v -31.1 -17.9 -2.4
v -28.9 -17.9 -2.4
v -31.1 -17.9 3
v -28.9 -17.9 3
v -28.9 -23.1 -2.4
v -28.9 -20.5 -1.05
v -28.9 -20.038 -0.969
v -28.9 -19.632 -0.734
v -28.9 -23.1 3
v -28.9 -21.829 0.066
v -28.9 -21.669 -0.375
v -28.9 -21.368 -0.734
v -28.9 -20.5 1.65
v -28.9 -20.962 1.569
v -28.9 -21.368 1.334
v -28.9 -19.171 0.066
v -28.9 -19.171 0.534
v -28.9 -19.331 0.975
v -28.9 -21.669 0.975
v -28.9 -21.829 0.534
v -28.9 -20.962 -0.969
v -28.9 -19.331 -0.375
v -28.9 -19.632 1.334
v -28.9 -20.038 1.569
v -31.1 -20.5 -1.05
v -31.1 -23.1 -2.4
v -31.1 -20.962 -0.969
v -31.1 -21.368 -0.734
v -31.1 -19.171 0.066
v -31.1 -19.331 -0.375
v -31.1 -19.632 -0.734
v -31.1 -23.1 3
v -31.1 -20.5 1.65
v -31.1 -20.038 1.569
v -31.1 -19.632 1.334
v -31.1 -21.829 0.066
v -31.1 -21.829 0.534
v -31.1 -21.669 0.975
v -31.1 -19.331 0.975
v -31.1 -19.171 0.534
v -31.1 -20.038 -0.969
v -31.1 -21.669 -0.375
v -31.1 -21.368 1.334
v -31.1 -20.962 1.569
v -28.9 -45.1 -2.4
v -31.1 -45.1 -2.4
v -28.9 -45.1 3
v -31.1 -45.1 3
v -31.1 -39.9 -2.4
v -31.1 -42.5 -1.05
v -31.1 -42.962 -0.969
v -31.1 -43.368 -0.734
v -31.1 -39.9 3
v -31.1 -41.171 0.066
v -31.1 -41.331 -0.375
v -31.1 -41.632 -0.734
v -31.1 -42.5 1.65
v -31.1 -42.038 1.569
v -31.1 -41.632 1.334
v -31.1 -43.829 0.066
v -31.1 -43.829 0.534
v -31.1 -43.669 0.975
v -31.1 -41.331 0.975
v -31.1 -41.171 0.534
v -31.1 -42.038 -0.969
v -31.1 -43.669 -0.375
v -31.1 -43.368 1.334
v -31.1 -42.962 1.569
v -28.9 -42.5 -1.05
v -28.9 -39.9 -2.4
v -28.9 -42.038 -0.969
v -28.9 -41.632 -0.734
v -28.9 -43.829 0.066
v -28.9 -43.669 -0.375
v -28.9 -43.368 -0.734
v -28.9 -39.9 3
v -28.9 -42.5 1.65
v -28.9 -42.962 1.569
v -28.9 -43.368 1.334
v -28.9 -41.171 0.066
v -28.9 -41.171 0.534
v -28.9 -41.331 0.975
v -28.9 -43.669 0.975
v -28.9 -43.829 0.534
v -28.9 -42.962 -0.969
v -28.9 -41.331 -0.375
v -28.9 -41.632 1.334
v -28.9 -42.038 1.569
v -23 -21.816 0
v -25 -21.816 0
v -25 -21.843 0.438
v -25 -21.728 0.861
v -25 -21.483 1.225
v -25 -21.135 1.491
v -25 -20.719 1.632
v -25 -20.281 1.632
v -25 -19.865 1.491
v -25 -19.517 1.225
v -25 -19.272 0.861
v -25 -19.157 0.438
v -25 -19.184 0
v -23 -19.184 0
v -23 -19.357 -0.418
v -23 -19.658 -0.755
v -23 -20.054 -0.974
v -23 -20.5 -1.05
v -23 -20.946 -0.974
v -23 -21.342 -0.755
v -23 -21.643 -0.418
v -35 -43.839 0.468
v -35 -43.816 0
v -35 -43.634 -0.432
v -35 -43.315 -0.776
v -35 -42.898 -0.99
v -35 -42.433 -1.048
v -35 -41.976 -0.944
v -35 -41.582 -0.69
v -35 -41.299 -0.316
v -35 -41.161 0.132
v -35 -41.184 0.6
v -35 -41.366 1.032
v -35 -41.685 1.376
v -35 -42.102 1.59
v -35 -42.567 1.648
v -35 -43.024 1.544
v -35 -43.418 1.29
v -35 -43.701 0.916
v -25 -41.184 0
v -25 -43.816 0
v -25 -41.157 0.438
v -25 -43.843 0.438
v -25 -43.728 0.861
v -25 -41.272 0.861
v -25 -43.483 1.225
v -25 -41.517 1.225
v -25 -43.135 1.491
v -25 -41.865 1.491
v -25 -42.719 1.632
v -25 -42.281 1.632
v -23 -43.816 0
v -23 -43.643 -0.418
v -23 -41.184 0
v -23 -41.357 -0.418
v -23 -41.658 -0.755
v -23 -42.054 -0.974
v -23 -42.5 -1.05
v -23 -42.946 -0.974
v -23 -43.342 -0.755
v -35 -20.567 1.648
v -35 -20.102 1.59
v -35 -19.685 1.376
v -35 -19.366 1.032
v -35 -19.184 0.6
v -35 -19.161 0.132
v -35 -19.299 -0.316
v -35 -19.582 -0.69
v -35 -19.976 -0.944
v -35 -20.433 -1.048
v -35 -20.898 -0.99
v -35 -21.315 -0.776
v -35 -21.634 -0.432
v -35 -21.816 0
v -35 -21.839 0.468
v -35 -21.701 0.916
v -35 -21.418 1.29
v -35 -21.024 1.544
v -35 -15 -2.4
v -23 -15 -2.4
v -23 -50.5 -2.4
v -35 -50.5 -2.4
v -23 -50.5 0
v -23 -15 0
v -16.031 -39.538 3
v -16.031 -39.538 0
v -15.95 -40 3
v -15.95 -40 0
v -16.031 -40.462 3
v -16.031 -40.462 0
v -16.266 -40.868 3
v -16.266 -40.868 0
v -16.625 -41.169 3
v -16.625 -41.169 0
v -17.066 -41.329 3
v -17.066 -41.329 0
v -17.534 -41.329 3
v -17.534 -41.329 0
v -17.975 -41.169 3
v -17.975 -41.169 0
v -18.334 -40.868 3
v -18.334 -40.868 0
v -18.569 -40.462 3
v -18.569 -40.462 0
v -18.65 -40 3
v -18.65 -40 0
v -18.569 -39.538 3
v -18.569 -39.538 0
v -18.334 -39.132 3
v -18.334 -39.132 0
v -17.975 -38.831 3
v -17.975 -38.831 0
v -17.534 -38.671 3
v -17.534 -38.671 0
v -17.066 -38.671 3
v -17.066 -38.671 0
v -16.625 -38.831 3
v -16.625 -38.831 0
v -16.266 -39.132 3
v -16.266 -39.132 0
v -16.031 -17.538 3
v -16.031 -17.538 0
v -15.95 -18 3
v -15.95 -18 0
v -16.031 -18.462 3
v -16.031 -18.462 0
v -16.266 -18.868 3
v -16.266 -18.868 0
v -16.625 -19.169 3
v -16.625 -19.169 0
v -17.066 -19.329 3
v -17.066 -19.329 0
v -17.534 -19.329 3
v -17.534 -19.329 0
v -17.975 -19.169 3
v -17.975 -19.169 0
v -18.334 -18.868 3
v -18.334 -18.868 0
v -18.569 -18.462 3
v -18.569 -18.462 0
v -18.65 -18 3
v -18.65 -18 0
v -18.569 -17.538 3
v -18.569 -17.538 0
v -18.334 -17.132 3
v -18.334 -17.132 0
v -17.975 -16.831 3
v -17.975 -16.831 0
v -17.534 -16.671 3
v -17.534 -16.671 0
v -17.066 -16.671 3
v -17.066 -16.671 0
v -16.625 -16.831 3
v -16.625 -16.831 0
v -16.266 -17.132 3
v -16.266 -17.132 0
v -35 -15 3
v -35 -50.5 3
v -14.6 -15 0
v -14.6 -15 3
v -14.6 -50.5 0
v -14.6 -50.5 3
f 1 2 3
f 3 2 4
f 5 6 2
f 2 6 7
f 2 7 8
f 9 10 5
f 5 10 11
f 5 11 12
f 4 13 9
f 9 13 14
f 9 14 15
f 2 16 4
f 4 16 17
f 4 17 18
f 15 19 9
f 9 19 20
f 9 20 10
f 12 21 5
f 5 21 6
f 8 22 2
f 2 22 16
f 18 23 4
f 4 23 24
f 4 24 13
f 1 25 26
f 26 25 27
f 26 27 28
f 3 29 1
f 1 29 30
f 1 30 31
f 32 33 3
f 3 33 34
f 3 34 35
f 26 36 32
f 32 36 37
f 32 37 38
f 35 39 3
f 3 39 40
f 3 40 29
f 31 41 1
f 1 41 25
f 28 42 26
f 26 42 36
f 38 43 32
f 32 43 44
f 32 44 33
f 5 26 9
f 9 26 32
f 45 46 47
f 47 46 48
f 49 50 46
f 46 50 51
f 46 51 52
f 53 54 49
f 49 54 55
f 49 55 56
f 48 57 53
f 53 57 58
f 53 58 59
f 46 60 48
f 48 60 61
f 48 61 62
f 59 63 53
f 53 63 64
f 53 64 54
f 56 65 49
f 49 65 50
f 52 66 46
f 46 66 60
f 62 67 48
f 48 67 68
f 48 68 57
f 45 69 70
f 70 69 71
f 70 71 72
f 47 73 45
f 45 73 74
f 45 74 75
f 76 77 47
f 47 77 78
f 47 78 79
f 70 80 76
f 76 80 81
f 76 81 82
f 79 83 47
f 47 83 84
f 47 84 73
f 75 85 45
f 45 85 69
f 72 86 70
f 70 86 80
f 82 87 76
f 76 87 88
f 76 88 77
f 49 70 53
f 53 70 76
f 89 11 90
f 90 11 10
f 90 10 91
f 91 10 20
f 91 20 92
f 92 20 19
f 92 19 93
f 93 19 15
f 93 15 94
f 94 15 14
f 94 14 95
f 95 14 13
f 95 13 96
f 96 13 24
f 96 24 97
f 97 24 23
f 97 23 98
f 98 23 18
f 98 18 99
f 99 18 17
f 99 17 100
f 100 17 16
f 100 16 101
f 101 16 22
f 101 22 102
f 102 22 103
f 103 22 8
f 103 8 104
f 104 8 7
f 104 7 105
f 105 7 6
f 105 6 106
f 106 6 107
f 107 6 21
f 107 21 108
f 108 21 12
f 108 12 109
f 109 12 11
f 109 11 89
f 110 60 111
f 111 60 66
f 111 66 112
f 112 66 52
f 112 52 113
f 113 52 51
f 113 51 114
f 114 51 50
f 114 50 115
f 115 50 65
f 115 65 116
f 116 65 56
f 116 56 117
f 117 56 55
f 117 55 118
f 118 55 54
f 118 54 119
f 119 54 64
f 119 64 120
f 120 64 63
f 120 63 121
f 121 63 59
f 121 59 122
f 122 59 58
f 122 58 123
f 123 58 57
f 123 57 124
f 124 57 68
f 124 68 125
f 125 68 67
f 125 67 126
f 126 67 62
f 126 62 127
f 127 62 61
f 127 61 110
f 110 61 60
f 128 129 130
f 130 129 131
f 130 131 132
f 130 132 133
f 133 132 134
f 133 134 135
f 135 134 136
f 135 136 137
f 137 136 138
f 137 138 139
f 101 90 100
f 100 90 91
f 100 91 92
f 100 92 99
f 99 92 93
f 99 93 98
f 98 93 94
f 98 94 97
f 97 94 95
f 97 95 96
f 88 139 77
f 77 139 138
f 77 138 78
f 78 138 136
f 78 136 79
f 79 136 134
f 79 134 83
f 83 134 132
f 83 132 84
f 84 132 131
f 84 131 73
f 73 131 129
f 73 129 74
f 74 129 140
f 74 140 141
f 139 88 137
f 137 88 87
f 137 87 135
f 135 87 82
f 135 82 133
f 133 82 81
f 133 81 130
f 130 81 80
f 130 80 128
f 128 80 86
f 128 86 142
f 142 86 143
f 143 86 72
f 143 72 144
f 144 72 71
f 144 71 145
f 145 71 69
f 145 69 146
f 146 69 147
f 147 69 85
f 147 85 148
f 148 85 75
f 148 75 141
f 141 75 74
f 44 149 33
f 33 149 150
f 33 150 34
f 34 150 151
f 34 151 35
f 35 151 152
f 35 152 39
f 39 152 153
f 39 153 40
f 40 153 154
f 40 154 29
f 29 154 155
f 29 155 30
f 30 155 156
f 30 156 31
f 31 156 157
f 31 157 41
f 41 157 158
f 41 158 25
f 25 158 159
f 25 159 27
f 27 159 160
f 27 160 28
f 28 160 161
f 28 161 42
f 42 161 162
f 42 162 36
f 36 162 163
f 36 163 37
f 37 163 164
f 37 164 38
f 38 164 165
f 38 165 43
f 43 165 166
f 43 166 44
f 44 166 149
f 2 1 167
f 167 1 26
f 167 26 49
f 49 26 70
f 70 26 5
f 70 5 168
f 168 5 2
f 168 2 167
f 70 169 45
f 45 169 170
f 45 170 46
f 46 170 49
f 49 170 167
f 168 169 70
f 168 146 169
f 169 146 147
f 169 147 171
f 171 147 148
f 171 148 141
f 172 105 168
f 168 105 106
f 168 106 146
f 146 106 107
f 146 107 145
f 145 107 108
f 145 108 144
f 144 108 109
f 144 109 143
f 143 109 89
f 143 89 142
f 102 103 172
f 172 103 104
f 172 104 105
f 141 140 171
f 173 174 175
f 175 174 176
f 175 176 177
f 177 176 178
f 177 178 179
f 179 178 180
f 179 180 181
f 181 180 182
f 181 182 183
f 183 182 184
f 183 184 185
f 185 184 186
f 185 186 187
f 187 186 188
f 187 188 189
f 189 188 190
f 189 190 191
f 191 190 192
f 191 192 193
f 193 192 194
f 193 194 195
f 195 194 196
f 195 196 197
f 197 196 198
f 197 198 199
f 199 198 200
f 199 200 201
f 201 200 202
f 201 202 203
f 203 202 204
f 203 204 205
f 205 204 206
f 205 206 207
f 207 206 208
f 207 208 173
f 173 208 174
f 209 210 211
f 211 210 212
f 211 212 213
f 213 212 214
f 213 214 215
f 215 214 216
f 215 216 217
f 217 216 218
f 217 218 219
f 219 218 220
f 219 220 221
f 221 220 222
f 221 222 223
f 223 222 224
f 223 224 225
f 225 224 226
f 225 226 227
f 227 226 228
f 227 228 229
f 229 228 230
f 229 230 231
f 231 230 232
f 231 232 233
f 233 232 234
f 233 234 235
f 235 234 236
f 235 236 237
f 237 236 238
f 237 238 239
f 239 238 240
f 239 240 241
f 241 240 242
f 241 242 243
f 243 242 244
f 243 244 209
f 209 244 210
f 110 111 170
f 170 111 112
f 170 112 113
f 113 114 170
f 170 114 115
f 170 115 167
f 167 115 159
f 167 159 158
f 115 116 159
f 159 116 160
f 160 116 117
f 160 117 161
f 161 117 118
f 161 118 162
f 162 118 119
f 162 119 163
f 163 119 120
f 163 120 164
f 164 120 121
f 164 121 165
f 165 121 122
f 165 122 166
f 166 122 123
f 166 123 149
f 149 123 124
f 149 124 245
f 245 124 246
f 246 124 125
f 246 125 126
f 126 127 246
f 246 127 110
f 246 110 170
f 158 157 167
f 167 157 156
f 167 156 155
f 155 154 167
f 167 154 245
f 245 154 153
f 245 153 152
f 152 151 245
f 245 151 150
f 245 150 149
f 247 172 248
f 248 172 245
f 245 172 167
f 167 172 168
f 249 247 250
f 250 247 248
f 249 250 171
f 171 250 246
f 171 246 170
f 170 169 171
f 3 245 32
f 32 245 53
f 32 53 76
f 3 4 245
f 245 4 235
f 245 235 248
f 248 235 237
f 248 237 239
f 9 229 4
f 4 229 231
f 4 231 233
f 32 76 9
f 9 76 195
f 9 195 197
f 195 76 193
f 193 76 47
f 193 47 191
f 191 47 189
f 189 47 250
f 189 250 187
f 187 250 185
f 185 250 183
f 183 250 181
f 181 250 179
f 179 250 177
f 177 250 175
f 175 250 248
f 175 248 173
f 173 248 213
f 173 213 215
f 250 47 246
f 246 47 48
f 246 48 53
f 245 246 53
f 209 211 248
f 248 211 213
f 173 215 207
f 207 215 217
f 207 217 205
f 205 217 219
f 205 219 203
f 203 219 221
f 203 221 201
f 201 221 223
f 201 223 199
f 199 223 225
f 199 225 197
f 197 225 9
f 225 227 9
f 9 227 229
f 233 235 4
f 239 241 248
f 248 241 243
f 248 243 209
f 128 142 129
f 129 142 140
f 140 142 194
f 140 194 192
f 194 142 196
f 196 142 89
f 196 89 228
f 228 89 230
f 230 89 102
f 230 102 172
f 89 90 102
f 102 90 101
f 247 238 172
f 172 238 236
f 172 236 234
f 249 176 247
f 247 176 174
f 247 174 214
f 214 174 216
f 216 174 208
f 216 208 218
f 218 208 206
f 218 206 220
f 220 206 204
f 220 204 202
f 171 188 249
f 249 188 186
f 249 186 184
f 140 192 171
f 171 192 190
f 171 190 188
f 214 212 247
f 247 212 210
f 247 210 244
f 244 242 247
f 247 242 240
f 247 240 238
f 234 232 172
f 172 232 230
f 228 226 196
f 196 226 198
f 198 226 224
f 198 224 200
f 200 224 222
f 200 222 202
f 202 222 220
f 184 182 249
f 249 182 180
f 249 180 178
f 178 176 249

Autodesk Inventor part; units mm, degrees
ref_plane "YZ Plane" through (0, 0, 0) normal (1, 0, 0) x (0, 1, 0)
ref_plane "XZ Plane" through (0, 0, 0) normal (0, 1, 0) x (-1, 0, 0)
ref_plane "XY Plane" through (0, 0, 0) normal (0, 0, 1) x (1, 0, 0)
ref_plane "작업 평면1" through (0, 0, 0) normal (0, 0, 1) x (1, 0, 0)
sketch "스케치2" plane through (0, 0, 0) normal (0, 0, 1) x (1, 0, 0)
  line L0 (13.5, -39.75) -> (11.5, -39.75) projected
  arc A0 (11.5, -39.75) -> (9.25, -42) centre (11.5, -42) ccw projected
  line L1 (9.25, -42) -> (9.25, -44) projected
  arc A1 (8.25, -45) -> (9.25, -44) centre (8.25, -44) ccw projected
  line L2 (8.25, -45) -> (-8.25, -45) projected
  arc A2 (-9.25, -44) -> (-8.25, -45) centre (-8.25, -44) ccw projected
  line L3 (-9.25, -44) -> (-9.25, -42) projected
  arc A3 (-9.25, -42) -> (-11.5, -39.75) centre (-11.5, -42) ccw projected
  line L4 (-11.5, -39.75) -> (-13.5, -39.75) projected
  arc A4 (-14.5, -38.75) -> (-13.5, -39.75) centre (-13.5, -38.75) ccw projected
  line L5 (-14.5, -38.75) -> (-14.5, 8.25) projected
  arc A5 (-13.5, 9.25) -> (-14.5, 8.25) centre (-13.5, 8.25) ccw projected
  line L6 (-13.5, 9.25) -> (-11.5, 9.25) projected
  arc A6 (-11.5, 9.25) -> (-9.25, 11.5) centre (-11.5, 11.5) ccw projected
  line L7 (-9.25, 11.5) -> (-9.25, 14.5) projected
  line L8 (-15, 14.5) -> (-9.25, 14.5) projected
  line L9 (-20.1, 8.5) -> (-15, 14.5) projected
  line L10 (-20.1, -44.6) -> (-20.1, 8.5) projected
  line L11 (-15, -50.6) -> (-20.1, -44.6) projected
  line L12 (15, -50.6) -> (-15, -50.6) projected
  line L13 (20.1, -44.6) -> (15, -50.6) projected
  line L14 (20.1, 8.5) -> (20.1, -44.6) projected
  line L15 (15, 14.5) -> (20.1, 8.5) projected
  line L16 (9.25, 14.5) -> (15, 14.5) projected
  line L17 (9.25, 14.5) -> (9.25, 11.5) projected
  arc A7 (9.25, 11.5) -> (11.5, 9.25) centre (11.5, 11.5) ccw projected
  line L18 (11.5, 9.25) -> (13.5, 9.25) projected
  arc A8 (14.5, 8.25) -> (13.5, 9.25) centre (13.5, 8.25) ccw projected
  line L19 (14.5, 8.25) -> (14.5, -38.75) projected
  arc A9 (13.5, -39.75) -> (14.5, -38.75) centre (13.5, -38.75) ccw projected
  circle A10 centre (17.3, 4) radius 1.35 projected
  circle A11 centre (17.3, -18) radius 1.35 projected
  circle A12 centre (11, -47.8) radius 1.35 projected
  circle A13 centre (-17.3, 4) radius 1.35 projected
  circle A14 centre (-17.3, -18) radius 1.35 projected
  circle A15 centre (-11, -47.8) radius 1.35 projected
  circle A16 centre (17.3, -40) radius 1.35 projected
  circle A17 centre (-17.3, -40) radius 1.35 projected
  line L20 (-43, 2.0766) -> (-43, -42.1766) projected
  line L21 (-14.6, 8.25) -> (-14.6, -38.75)
  arc A18 (-14.6, -38.75) -> (-13.5, -39.85) centre (-13.5, -38.75) ccw
  line L22 (-13.5, -39.85) -> (-11.5, -39.85)
  arc A19 (-9.35, -42) -> (-11.5, -39.85) centre (-11.5, -42) ccw
  line L23 (-9.35, -42) -> (-9.35, -44)
  arc A20 (-9.35, -44) -> (-8.25, -45.1) centre (-8.25, -44) ccw
  line L24 (-8.25, -45.1) -> (8.25, -45.1)
  arc A21 (8.25, -45.1) -> (9.35, -44) centre (8.25, -44) ccw
  line L25 (9.35, -44) -> (9.35, -42)
  arc A22 (11.5, -39.85) -> (9.35, -42) centre (11.5, -42) ccw
  line L26 (11.5, -39.85) -> (13.5, -39.85)
  arc A23 (13.5, -39.85) -> (14.6, -38.75) centre (13.5, -38.75) ccw
  line L27 (14.6, -38.75) -> (14.6, 8.25)
  arc A24 (14.6, 8.25) -> (13.5, 9.35) centre (13.5, 8.25) ccw
  line L28 (13.5, 9.35) -> (11.5, 9.35)
  arc A25 (9.35, 11.5) -> (11.5, 9.35) centre (11.5, 11.5) ccw
  line L29 (9.35, 11.5) -> (9.35, 14.4)
  line L30 (9.35, 14.4) -> (14.9538, 14.4)
  line L31 (14.9538, 14.4) -> (20, 8.4632)
  line L32 (20, 8.4632) -> (20, -44.5632)
  line L33 (20, -44.5632) -> (14.9538, -50.5)
  line L34 (14.9538, -50.5) -> (-14.9538, -50.5)
  line L35 (-20, -15) -> (-20, 8.4632)
  line L36 (-20, 8.4632) -> (-14.9538, 14.4)
  line L37 (-14.9538, 14.4) -> (-9.35, 14.4)
  line L38 (-9.35, 14.4) -> (-9.35, 11.5)
  arc A26 (-11.5, 9.35) -> (-9.35, 11.5) centre (-11.5, 11.5) ccw
  line L39 (-11.5, 9.35) -> (-13.5, 9.35)
  arc A27 (-13.5, 9.35) -> (-14.6, 8.25) centre (-13.5, 8.25) ccw
  line L40 (-20, -15) -> (-14.6, -15)
  line L41 (-14.6, -15) -> (-14.6, -45)
  line L42 (-43, -15) -> (-20, -15)
  line L43 (-35, -45) -> (-35, -50.5)
  line L44 (-35, -50.5) -> (-14.6, -50.5)
  line L45 (-14.6, -50.5) -> (-14.6, -45)
  line L46 (-35, -45) -> (-35, -15)
  point P0 (0, 0)
  point P1 (-14.6, -38.75)
  point P2 (-14.6, -50.5)
  point P3 (-14.6, -38.75)
  dimension "d1" = 0.1
  dimension "d27" = 20.4
extrude "돌출8" add sketch "스케치2" along normal blind 3 contours L44 L43 L46 L42 L10 L11 | L11 L10 L42 L40 L21 L41 L45 L34 L44
sketch "스케치10" plane through (-35, -50.5, 0) normal (-1, 0, 0) x (0, 0, 1)
  arc A0 (-36.5808, 54.2636) -> (-37.1, 52.5766) centre (-34.1, 52.5766) ccw projected
  line L0 (-37.1, 8.3234) -> (-37.1, 52.5766) projected
  arc A1 (-37.1, 8.3234) -> (-36.5808, 6.6364) centre (-34.1, 8.3234) ccw projected
  line L1 (-32.8929, 1.2131) -> (-36.5808, 6.6364) projected
  arc A2 (-32.8929, 1.2131) -> (-30.4121, -0.1) centre (-30.4121, 2.9) ccw projected
  line L2 (-3.5879, -0.1) -> (-30.4121, -0.1) projected
  arc A3 (-3.5879, -0.1) -> (-1.1071, 1.2131) centre (-3.5879, 2.9) ccw projected
  line L3 (2.5808, 6.6364) -> (-1.1071, 1.2131) projected
  arc A4 (2.5808, 6.6364) -> (3.1, 8.3234) centre (0.1, 8.3234) ccw projected
  line L4 (3.1, 52.5766) -> (3.1, 8.3234) projected
  arc A5 (3.1, 52.5766) -> (2.5808, 54.2636) centre (0.1, 52.5766) ccw projected
  line L5 (-1.4047, 60.1246) -> (2.5808, 54.2636) projected
  arc A6 (-1.4047, 60.1246) -> (-3.0586, 61) centre (-3.0586, 59) ccw projected
  line L6 (-9.35, 61) -> (-3.0586, 61) projected
  arc A7 (-7.85, 59.5) -> (-9.35, 61) centre (-9.35, 59.5) ccw projected
  line L7 (-7.85, 59.5) -> (-7.85, 58) projected
  arc A8 (-7.85, 58) -> (-5.5, 55.65) centre (-5.5, 58) ccw projected
  line L8 (-5.5, 55.65) -> (-3.5, 55.65) projected
  arc A9 (-2.5, 54.65) -> (-3.5, 55.65) centre (-3.5, 54.65) ccw projected
  line L9 (-2.5, 54.65) -> (-2.5, 11.85) projected
  arc A10 (-3.5, 10.85) -> (-2.5, 11.85) centre (-3.5, 11.85) ccw projected
  line L10 (-3.5, 10.85) -> (-5.5, 10.85) projected
  arc A11 (-5.5, 10.85) -> (-7.85, 8.5) centre (-5.5, 8.5) ccw projected
  line L11 (-7.85, 8.5) -> (-7.85, 6.5) projected
  arc A12 (-8.85, 5.5) -> (-7.85, 6.5) centre (-8.85, 6.5) ccw projected
  line L12 (-8.85, 5.5) -> (-25.15, 5.5) projected
  arc A13 (-26.15, 6.5) -> (-25.15, 5.5) centre (-25.15, 6.5) ccw projected
  line L13 (-26.15, 6.5) -> (-26.15, 8.5) projected
  arc A14 (-26.15, 8.5) -> (-28.5, 10.85) centre (-28.5, 8.5) ccw projected
  line L14 (-28.5, 10.85) -> (-30.5, 10.85) projected
  arc A15 (-31.5, 11.85) -> (-30.5, 10.85) centre (-30.5, 11.85) ccw projected
  line L15 (-31.5, 11.85) -> (-31.5, 54.65) projected
  arc A16 (-30.5, 55.65) -> (-31.5, 54.65) centre (-30.5, 54.65) ccw projected
  line L16 (-30.5, 55.65) -> (-28.5, 55.65) projected
  arc A17 (-28.5, 55.65) -> (-26.15, 58) centre (-28.5, 58) ccw projected
  line L17 (-26.15, 58) -> (-26.15, 59.5) projected
  arc A18 (-24.65, 61) -> (-26.15, 59.5) centre (-24.65, 59.5) ccw projected
  line L18 (-30.9414, 61) -> (-24.65, 61) projected
  arc A19 (-30.9414, 61) -> (-32.5953, 60.1246) centre (-30.9414, 59) ccw projected
  line L19 (-36.5808, 54.2636) -> (-32.5953, 60.1246) projected
  circle A20 centre (0.3, 52) radius 1.35 projected
  circle A21 centre (0.3, 30) radius 1.35 projected
  circle A22 centre (-6, 2.7) radius 1.35 projected
  circle A23 centre (-34.3, 52) radius 1.35 projected
  circle A24 centre (-34.3, 30) radius 1.35 projected
  circle A25 centre (-28, 2.7) radius 1.35 projected
  circle A26 centre (0.3, 8) radius 1.35 projected
  circle A27 centre (-34.3, 8) radius 1.35 projected
  line L20 (0, 35.5) -> (0, 0) projected
  line L21 (0, 0) -> (3, 0) projected
  line L22 (3, 35.5) -> (3, 0) projected
  line L23 (0, 35.5) -> (3, 35.5) projected
  line L24 (-2.4, 11.85) -> (-2.4, 54.65)
  arc A28 (-2.4, 54.65) -> (-3.5, 55.75) centre (-3.5, 54.65) ccw
  line L25 (-3.5, 55.75) -> (-5.5, 55.75)
  arc A29 (-7.75, 58) -> (-5.5, 55.75) centre (-5.5, 58) ccw
  line L26 (-7.75, 58) -> (-7.75, 59.5)
  arc A30 (-7.75, 59.5) -> (-10.1246, 60.9) centre (-9.35, 59.5) ccw
  line L27 (-10.1246, 60.9) -> (-3.0586, 60.9)
  arc A31 (-1.4874, 60.0684) -> (-3.0586, 60.9) centre (-3.0586, 59) ccw
  line L28 (-1.4874, 60.0684) -> (2.4981, 54.2073)
  arc A32 (3, 52.5766) -> (2.4981, 54.2073) centre (0.1, 52.5766) ccw
  line L29 (3, 52.5766) -> (3, 8.3234)
  arc A33 (2.4981, 6.6927) -> (3, 8.3234) centre (0.1, 8.3234) ccw
  line L30 (2.4981, 6.6927) -> (0, 3.019)
  arc A34 (-3.5879, 0) -> (-2.4, 0.2545) centre (-3.5879, 2.9) ccw
  line L31 (-3.5879, 0) -> (-30.4121, 0)
  arc A35 (-32.8102, 1.2693) -> (-30.4121, 0) centre (-30.4121, 2.9) ccw
  line L32 (-32.8102, 1.2693) -> (-36.4981, 6.6927)
  arc A36 (-37, 8.3234) -> (-36.4981, 6.6927) centre (-34.1, 8.3234) ccw
  line L33 (-37, 8.3234) -> (-37, 52.5766)
  arc A37 (-36.4981, 54.2073) -> (-37, 52.5766) centre (-34.1, 52.5766) ccw
  line L34 (-36.4981, 54.2073) -> (-32.5126, 60.0684)
  arc A38 (-30.9414, 60.9) -> (-32.5126, 60.0684) centre (-30.9414, 59) ccw
  line L35 (-30.9414, 60.9) -> (-25.4246, 60.9)
  arc A39 (-25.4246, 60.9) -> (-26.25, 59.5) centre (-24.65, 59.5) ccw
  line L36 (-26.25, 59.5) -> (-26.25, 58)
  arc A40 (-28.5, 55.75) -> (-26.25, 58) centre (-28.5, 58) ccw
  line L37 (-28.5, 55.75) -> (-30.5, 55.75)
  arc A41 (-30.5, 55.75) -> (-31.6, 54.65) centre (-30.5, 54.65) ccw
  line L38 (-31.6, 54.65) -> (-31.6, 11.85)
  arc A42 (-31.6, 11.85) -> (-30.5, 10.75) centre (-30.5, 11.85) ccw
  line L39 (-30.5, 10.75) -> (-28.5, 10.75)
  arc A43 (-26.25, 8.5) -> (-28.5, 10.75) centre (-28.5, 8.5) ccw
  line L40 (-26.25, 8.5) -> (-26.25, 6.5)
  arc A44 (-26.25, 6.5) -> (-25.15, 5.4) centre (-25.15, 6.5) ccw
  line L41 (-25.15, 5.4) -> (-8.85, 5.4)
  arc A45 (-8.85, 5.4) -> (-7.75, 6.5) centre (-8.85, 6.5) ccw
  line L42 (-7.75, 6.5) -> (-7.75, 8.5)
  arc A46 (-5.5, 10.75) -> (-7.75, 8.5) centre (-5.5, 8.5) ccw
  line L43 (-5.5, 10.75) -> (-3.5, 10.75)
  arc A47 (-3.5, 10.75) -> (-2.4, 11.85) centre (-3.5, 11.85) ccw
  line L44 (0, 0) -> (-2.4, 0)
  line L45 (-2.4, 0) -> (-2.4, 35.5)
  line L46 (-2.4, 35.5) -> (0, 35.5)
  line L47 (0, 35.5) -> (0, 0)
  point P0 (0, 50.5)
  point P1 (0, 6.6838)
  point P2 (0, 9.3162)
  point P3 (0, 28.6838)
  point P4 (0, 31.3162)
  point P5 (0, 35.5)
  point P6 (-2.4, 11.85)
  dimension "d30" = 0.1
extrude "돌출10" add sketch "스케치10" against normal blind 12 contours L45 L24 L46 L20 A21 A26 L3 A3 | A3 L3 L20 L44 L45
sketch "스케치12" plane through (-35, -50.5, 3) normal (-1, 0, 0) x (0, 0, 1)
  line L0 (-5.5579, 8) -> (-4.1289, 5.525) projected
  arc A0 (-39.5808, 54.2636) -> (-40.1, 52.5766) centre (-37.1, 52.5766) ccw projected
  line L1 (-40.1, 8.3234) -> (-40.1, 52.5766) projected
  arc A1 (-40.1, 8.3234) -> (-39.5808, 6.6364) centre (-37.1, 8.3234) ccw projected
  line L2 (-35.8929, 1.2131) -> (-39.5808, 6.6364) projected
  arc A2 (-35.8929, 1.2131) -> (-33.4121, -0.1) centre (-33.4121, 2.9) ccw projected
  line L3 (-6.5879, -0.1) -> (-33.4121, -0.1) projected
  arc A3 (-6.5879, -0.1) -> (-4.1071, 1.2131) centre (-6.5879, 2.9) ccw projected
  line L4 (-0.4192, 6.6364) -> (-4.1071, 1.2131) projected
  arc A4 (-0.4192, 6.6364) -> (0.1, 8.3234) centre (-2.9, 8.3234) ccw projected
  line L5 (0.1, 52.5766) -> (0.1, 8.3234) projected
  arc A5 (0.1, 52.5766) -> (-0.4192, 54.2636) centre (-2.9, 52.5766) ccw projected
  line L6 (-4.4047, 60.1246) -> (-0.4192, 54.2636) projected
  arc A6 (-4.4047, 60.1246) -> (-6.0586, 61) centre (-6.0586, 59) ccw projected
  line L7 (-12.35, 61) -> (-6.0586, 61) projected
  arc A7 (-10.85, 59.5) -> (-12.35, 61) centre (-12.35, 59.5) ccw projected
  line L8 (-10.85, 59.5) -> (-10.85, 58) projected
  arc A8 (-10.85, 58) -> (-8.5, 55.65) centre (-8.5, 58) ccw projected
  line L9 (-8.5, 55.65) -> (-6.5, 55.65) projected
  arc A9 (-5.5, 54.65) -> (-6.5, 55.65) centre (-6.5, 54.65) ccw projected
  line L10 (-5.5, 54.65) -> (-5.5, 11.85) projected
  arc A10 (-6.5, 10.85) -> (-5.5, 11.85) centre (-6.5, 11.85) ccw projected
  line L11 (-6.5, 10.85) -> (-8.5, 10.85) projected
  arc A11 (-8.5, 10.85) -> (-10.85, 8.5) centre (-8.5, 8.5) ccw projected
  line L12 (-10.85, 8.5) -> (-10.85, 6.5) projected
  arc A12 (-11.85, 5.5) -> (-10.85, 6.5) centre (-11.85, 6.5) ccw projected
  line L13 (-11.85, 5.5) -> (-28.15, 5.5) projected
  arc A13 (-29.15, 6.5) -> (-28.15, 5.5) centre (-28.15, 6.5) ccw projected
  line L14 (-29.15, 6.5) -> (-29.15, 8.5) projected
  arc A14 (-29.15, 8.5) -> (-31.5, 10.85) centre (-31.5, 8.5) ccw projected
  line L15 (-31.5, 10.85) -> (-33.5, 10.85) projected
  arc A15 (-34.5, 11.85) -> (-33.5, 10.85) centre (-33.5, 11.85) ccw projected
  line L16 (-34.5, 11.85) -> (-34.5, 54.65) projected
  arc A16 (-33.5, 55.65) -> (-34.5, 54.65) centre (-33.5, 54.65) ccw projected
  line L17 (-33.5, 55.65) -> (-31.5, 55.65) projected
  arc A17 (-31.5, 55.65) -> (-29.15, 58) centre (-31.5, 58) ccw projected
  line L18 (-29.15, 58) -> (-29.15, 59.5) projected
  arc A18 (-27.65, 61) -> (-29.15, 59.5) centre (-27.65, 59.5) ccw projected
  line L19 (-33.9414, 61) -> (-27.65, 61) projected
  arc A19 (-33.9414, 61) -> (-35.5953, 60.1246) centre (-33.9414, 59) ccw projected
  line L20 (-39.5808, 54.2636) -> (-35.5953, 60.1246) projected
  circle A20 centre (-2.7, 52) radius 1.35 projected
  circle A21 centre (-2.7, 30) radius 1.35 projected
  circle A22 centre (-9, 2.7) radius 1.35 projected
  circle A23 centre (-37.3, 52) radius 1.35 projected
  circle A24 centre (-37.3, 30) radius 1.35 projected
  circle A25 centre (-31, 2.7) radius 1.35 projected
  circle A26 centre (-2.7, 8) radius 1.35 projected
  circle A27 centre (-37.3, 8) radius 1.35 projected
  circle A28 centre (-2.7, 8) radius 1.35
  circle A29 centre (-2.7, 30) radius 1.35
  point P0 (-3, 50.5)
  dimension "d35" = 2.7
  dimension "d36" = 2.7
extrude "돌출11" cut sketch "스케치12" against normal blind 10 contours A21 | A26
sketch "스케치13" plane through (0, 0, 3) normal (0, 0, 1) x (1, 0, 0)
  line L0 (-25, -43.85) -> (-35, -43.85) projected
  line L1 (-25, -41.15) -> (-35, -41.15) projected
  line L2 (-25, -21.85) -> (-35, -21.85) projected
  line L3 (-25, -19.15) -> (-35, -19.15) projected
  line L4 (-30, -43.85) -> (-30, -41.15)
  line L5 (-30, -19.15) -> (-30, -21.85)
  line L6 (-28.9, -39.9) -> (-31.1, -39.9)
  line L7 (-31.1, -39.9) -> (-31.1, -45.1)
  line L8 (-31.1, -45.1) -> (-28.9, -45.1)
  line L9 (-28.9, -45.1) -> (-28.9, -39.9)
  line L10 (-28.9, -39.9) -> (-31.1, -45.1) construction
  line L11 (-31.1, -39.9) -> (-28.9, -45.1) construction
  line L12 (-28.9, -17.9) -> (-31.1, -17.9)
  line L13 (-31.1, -17.9) -> (-31.1, -23.1)
  line L14 (-31.1, -23.1) -> (-28.9, -23.1)
  line L15 (-28.9, -23.1) -> (-28.9, -17.9)
  line L16 (-28.9, -17.9) -> (-31.1, -23.1) construction
  line L17 (-31.1, -17.9) -> (-28.9, -23.1) construction
  point P0 (0, 0)
  point P1 (-30, -42.5)
  point P2 (-30, -20.5)
  dimension "d39" = 2.2
  dimension "d40" = 5.2
  dimension "d41" = 2.2
  dimension "d42" = 5.2
extrude "돌출12" cut sketch "스케치13" against normal blind 10
properties part number "foot_right_connection" material "PMMA 플라스틱"
